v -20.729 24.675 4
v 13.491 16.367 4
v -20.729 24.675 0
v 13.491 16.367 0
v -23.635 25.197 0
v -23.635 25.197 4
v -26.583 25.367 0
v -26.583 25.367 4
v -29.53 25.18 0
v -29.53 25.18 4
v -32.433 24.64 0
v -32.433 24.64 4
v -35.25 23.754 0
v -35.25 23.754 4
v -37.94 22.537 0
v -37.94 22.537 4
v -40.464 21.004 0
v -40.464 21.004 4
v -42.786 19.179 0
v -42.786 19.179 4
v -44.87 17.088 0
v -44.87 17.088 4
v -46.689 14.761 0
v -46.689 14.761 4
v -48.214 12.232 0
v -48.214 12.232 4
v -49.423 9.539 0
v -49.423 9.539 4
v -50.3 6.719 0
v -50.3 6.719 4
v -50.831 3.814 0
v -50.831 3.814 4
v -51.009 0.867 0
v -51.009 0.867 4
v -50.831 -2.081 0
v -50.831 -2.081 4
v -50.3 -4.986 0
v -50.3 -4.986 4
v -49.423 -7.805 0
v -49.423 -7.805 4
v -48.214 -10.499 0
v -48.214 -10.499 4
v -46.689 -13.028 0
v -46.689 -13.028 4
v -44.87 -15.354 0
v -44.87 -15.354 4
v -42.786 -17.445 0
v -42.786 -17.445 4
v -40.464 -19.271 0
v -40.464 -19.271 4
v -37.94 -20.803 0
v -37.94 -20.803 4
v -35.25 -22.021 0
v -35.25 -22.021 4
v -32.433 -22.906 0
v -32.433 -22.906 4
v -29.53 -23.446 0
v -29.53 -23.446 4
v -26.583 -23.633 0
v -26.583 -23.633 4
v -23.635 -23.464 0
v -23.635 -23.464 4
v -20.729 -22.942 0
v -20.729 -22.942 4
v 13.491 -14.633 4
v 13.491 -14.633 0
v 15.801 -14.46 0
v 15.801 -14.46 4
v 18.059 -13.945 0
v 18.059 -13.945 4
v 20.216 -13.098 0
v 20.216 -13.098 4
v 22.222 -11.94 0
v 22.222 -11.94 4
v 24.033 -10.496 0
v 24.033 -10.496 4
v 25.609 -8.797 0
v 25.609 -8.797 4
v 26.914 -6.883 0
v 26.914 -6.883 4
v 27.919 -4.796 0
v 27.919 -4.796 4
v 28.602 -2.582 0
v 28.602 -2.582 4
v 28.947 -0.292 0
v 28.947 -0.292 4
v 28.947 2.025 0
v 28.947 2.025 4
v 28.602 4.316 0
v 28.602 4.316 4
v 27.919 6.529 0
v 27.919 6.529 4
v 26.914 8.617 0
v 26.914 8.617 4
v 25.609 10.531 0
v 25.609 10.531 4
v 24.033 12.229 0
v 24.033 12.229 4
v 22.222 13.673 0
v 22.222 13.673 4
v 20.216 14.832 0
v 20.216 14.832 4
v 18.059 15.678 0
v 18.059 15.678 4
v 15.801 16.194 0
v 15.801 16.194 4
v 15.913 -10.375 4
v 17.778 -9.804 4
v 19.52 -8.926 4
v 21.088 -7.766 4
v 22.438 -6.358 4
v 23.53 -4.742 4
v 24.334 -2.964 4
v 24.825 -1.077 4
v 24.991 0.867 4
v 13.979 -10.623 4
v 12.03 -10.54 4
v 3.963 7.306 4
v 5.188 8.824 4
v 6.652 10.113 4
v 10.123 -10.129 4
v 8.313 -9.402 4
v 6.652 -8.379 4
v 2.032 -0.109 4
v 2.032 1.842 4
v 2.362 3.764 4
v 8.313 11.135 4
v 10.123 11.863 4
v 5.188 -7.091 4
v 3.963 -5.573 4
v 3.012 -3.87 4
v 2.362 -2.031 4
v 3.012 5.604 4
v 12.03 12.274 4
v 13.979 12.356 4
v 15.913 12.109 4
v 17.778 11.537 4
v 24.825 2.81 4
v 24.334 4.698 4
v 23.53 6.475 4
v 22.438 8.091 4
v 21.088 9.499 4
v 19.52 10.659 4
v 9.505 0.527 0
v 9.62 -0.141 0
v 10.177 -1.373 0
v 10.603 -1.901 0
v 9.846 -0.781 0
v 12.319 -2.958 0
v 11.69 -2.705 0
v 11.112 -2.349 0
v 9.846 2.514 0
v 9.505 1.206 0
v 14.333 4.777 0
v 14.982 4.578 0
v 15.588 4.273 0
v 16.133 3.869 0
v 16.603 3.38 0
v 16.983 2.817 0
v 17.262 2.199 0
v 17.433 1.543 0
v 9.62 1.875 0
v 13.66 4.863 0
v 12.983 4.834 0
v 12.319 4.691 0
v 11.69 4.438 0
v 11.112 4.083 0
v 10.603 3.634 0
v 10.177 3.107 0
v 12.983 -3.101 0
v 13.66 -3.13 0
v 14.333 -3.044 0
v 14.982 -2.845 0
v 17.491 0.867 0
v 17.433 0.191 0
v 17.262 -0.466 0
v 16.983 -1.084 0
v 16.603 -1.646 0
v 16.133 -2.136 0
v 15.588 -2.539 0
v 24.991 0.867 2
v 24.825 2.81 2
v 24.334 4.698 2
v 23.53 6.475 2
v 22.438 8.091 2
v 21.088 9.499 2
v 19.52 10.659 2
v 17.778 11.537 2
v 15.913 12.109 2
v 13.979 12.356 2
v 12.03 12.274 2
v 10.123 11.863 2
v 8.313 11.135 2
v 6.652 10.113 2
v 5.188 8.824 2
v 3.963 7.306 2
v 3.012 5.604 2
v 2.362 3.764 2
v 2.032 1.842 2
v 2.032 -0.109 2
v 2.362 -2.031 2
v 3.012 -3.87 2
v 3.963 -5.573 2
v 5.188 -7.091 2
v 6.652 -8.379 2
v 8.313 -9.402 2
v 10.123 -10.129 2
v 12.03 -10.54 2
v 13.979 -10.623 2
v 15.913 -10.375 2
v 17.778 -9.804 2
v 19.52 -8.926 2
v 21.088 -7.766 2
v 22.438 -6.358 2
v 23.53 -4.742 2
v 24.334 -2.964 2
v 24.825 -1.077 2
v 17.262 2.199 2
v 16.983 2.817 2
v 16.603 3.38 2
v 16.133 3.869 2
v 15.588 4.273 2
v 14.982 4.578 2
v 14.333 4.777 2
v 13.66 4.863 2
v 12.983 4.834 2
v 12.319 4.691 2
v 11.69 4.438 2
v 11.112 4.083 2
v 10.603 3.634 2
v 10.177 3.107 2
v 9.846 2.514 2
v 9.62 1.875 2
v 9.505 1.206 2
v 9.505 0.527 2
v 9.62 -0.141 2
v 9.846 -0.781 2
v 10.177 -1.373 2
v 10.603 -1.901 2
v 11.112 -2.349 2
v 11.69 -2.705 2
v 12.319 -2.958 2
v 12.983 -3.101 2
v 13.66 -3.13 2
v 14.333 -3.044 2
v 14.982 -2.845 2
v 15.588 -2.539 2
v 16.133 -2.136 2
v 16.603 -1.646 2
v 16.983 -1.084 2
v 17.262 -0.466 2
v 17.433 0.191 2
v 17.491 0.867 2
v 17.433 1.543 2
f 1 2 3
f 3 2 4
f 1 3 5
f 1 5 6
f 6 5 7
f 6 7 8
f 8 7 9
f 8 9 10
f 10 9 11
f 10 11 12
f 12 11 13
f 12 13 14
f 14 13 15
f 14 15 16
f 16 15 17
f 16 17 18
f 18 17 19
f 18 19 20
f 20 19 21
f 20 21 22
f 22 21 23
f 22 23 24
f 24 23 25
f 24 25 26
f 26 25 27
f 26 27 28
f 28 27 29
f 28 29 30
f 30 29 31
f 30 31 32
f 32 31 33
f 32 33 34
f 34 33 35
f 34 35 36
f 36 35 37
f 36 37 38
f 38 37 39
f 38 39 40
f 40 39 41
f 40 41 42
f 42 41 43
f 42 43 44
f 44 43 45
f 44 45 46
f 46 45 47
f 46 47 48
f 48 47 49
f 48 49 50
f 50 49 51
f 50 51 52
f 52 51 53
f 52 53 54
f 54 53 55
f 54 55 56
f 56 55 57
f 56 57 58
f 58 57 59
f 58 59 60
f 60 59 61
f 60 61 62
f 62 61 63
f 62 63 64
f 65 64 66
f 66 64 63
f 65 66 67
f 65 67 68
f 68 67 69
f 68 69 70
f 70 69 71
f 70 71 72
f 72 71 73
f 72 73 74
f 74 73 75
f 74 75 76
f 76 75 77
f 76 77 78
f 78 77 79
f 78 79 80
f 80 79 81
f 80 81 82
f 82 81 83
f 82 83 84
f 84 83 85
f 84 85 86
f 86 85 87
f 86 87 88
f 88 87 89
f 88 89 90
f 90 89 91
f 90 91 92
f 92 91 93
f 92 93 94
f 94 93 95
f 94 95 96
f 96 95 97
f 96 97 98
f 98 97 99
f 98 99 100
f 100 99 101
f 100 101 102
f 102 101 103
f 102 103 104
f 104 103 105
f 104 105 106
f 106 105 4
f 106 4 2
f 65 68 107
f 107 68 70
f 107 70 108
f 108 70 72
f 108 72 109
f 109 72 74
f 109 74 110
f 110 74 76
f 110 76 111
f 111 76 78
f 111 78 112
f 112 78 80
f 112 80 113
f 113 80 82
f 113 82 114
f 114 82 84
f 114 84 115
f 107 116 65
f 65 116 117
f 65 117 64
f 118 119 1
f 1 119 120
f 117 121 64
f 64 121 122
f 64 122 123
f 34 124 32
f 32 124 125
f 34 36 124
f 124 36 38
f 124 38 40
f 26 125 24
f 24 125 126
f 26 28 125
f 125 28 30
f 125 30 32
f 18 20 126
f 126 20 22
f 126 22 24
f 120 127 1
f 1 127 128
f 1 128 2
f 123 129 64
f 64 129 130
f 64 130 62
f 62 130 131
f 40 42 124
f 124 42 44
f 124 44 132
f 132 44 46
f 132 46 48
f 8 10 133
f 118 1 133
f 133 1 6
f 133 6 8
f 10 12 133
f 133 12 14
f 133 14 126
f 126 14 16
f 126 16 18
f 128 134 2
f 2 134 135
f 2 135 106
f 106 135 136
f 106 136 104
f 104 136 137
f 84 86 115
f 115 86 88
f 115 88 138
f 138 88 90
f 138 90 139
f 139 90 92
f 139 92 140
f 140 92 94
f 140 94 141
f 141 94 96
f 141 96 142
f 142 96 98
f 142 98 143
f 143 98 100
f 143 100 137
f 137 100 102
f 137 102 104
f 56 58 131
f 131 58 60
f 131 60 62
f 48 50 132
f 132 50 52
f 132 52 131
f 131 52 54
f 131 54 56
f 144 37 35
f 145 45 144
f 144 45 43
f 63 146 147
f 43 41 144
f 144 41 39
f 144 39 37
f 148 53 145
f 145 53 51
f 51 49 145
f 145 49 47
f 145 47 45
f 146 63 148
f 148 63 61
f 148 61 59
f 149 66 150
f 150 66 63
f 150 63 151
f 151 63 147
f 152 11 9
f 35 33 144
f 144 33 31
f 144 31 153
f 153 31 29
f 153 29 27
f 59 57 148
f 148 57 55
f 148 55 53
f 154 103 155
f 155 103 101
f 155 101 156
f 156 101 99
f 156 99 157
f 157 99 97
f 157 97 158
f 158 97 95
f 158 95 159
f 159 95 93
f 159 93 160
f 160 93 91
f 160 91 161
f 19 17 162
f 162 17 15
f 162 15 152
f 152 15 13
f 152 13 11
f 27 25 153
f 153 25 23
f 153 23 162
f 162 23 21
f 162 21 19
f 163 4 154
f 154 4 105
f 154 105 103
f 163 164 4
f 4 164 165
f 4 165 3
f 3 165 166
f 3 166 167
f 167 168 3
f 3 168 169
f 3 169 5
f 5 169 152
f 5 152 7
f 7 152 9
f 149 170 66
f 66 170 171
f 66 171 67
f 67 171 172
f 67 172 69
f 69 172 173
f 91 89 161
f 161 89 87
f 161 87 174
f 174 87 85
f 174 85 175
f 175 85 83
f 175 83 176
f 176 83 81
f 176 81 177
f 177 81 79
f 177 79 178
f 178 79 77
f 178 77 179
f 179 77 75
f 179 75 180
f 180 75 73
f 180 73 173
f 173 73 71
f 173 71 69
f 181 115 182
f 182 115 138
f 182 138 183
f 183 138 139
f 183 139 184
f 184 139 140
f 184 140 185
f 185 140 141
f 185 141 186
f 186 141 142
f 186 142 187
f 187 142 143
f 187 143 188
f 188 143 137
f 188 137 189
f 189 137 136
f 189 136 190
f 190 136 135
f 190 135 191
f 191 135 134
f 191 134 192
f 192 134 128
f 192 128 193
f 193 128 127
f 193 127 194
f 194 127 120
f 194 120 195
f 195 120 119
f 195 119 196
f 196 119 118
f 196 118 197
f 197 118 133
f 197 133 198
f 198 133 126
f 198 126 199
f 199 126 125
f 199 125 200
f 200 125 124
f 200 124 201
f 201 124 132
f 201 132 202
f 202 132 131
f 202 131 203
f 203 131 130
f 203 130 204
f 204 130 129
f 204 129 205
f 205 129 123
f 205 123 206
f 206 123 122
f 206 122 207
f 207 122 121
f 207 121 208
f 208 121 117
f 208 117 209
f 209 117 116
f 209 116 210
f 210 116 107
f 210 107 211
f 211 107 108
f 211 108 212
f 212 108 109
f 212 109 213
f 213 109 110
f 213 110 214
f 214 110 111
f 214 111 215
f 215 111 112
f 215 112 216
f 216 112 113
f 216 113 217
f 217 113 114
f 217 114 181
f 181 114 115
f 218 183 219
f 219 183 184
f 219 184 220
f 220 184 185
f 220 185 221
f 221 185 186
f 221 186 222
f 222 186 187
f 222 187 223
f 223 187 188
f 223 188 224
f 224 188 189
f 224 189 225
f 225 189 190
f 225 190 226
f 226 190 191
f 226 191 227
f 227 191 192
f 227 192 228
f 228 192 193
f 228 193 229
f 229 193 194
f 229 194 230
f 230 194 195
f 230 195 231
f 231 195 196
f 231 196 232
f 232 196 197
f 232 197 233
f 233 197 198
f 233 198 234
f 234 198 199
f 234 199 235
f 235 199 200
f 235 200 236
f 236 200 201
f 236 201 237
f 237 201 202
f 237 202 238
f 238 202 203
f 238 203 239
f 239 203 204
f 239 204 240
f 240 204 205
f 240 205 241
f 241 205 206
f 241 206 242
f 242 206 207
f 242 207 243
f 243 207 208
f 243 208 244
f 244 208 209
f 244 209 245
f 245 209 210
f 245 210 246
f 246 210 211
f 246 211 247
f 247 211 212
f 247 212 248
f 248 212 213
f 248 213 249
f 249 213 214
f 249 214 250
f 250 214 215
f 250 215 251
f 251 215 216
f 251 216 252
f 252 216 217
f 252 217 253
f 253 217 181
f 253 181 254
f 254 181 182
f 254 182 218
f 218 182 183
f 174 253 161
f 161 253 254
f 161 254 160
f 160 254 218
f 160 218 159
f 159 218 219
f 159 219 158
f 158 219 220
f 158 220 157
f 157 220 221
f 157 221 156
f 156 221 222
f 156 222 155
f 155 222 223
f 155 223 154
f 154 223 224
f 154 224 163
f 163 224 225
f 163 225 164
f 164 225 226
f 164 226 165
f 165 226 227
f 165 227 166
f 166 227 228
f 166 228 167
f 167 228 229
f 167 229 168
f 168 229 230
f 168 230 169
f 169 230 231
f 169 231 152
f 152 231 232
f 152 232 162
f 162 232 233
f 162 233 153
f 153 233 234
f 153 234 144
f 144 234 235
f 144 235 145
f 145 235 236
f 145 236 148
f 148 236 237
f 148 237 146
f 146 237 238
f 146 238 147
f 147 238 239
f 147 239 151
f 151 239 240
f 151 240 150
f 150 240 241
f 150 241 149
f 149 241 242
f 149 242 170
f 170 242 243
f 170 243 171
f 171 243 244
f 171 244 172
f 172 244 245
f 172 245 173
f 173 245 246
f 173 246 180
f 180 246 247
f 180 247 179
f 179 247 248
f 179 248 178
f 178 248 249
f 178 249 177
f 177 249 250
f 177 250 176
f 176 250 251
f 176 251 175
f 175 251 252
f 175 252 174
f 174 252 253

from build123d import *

# Parameters (mm, degrees)
EXTRUDE_1_DEPTH     = 4
SKETCH_2_R          = 11.5
CUT_EXTRUDE_1_DEPTH = 2
SKETCH_3_R          = 4
CUT_EXTRUDE_2_DEPTH = 2


with BuildPart() as part:
    # 草图1 → 凸台-拉伸1 (new body)
    with BuildSketch(Plane.XY):
        with BuildLine():
            Line((13.490639399, 16.366658186), (-20.728829372, 24.674964692))
            ThreePointArc((-20.728829372, 24.674964692), (-51.009360601, 0.866658186), (-20.728829372, -22.941648321))
            Line((-20.728829372, -22.941648321), (13.490639399, -14.633341814))
            ThreePointArc((13.490639399, -14.633341814), (28.990639399, 0.866658186), (13.490639399, 16.366658186))
        make_face()
    extrude(amount=EXTRUDE_1_DEPTH)

    # 草图2 → 切除-拉伸1 (cut)
    with BuildSketch(Plane.XY.offset(4)):
        with Locations((13.490639399, 0.866658186)):
            Circle(SKETCH_2_R)
    extrude(amount=-CUT_EXTRUDE_1_DEPTH, mode=Mode.SUBTRACT)

    # 草图3 → 切除-拉伸2 (cut)
    with BuildSketch(Plane.XY.offset(2)):
        with Locations((13.490639399, 0.866658186)):
            Circle(SKETCH_3_R)
    extrude(amount=-CUT_EXTRUDE_2_DEPTH, mode=Mode.SUBTRACT)


solid = part.part
